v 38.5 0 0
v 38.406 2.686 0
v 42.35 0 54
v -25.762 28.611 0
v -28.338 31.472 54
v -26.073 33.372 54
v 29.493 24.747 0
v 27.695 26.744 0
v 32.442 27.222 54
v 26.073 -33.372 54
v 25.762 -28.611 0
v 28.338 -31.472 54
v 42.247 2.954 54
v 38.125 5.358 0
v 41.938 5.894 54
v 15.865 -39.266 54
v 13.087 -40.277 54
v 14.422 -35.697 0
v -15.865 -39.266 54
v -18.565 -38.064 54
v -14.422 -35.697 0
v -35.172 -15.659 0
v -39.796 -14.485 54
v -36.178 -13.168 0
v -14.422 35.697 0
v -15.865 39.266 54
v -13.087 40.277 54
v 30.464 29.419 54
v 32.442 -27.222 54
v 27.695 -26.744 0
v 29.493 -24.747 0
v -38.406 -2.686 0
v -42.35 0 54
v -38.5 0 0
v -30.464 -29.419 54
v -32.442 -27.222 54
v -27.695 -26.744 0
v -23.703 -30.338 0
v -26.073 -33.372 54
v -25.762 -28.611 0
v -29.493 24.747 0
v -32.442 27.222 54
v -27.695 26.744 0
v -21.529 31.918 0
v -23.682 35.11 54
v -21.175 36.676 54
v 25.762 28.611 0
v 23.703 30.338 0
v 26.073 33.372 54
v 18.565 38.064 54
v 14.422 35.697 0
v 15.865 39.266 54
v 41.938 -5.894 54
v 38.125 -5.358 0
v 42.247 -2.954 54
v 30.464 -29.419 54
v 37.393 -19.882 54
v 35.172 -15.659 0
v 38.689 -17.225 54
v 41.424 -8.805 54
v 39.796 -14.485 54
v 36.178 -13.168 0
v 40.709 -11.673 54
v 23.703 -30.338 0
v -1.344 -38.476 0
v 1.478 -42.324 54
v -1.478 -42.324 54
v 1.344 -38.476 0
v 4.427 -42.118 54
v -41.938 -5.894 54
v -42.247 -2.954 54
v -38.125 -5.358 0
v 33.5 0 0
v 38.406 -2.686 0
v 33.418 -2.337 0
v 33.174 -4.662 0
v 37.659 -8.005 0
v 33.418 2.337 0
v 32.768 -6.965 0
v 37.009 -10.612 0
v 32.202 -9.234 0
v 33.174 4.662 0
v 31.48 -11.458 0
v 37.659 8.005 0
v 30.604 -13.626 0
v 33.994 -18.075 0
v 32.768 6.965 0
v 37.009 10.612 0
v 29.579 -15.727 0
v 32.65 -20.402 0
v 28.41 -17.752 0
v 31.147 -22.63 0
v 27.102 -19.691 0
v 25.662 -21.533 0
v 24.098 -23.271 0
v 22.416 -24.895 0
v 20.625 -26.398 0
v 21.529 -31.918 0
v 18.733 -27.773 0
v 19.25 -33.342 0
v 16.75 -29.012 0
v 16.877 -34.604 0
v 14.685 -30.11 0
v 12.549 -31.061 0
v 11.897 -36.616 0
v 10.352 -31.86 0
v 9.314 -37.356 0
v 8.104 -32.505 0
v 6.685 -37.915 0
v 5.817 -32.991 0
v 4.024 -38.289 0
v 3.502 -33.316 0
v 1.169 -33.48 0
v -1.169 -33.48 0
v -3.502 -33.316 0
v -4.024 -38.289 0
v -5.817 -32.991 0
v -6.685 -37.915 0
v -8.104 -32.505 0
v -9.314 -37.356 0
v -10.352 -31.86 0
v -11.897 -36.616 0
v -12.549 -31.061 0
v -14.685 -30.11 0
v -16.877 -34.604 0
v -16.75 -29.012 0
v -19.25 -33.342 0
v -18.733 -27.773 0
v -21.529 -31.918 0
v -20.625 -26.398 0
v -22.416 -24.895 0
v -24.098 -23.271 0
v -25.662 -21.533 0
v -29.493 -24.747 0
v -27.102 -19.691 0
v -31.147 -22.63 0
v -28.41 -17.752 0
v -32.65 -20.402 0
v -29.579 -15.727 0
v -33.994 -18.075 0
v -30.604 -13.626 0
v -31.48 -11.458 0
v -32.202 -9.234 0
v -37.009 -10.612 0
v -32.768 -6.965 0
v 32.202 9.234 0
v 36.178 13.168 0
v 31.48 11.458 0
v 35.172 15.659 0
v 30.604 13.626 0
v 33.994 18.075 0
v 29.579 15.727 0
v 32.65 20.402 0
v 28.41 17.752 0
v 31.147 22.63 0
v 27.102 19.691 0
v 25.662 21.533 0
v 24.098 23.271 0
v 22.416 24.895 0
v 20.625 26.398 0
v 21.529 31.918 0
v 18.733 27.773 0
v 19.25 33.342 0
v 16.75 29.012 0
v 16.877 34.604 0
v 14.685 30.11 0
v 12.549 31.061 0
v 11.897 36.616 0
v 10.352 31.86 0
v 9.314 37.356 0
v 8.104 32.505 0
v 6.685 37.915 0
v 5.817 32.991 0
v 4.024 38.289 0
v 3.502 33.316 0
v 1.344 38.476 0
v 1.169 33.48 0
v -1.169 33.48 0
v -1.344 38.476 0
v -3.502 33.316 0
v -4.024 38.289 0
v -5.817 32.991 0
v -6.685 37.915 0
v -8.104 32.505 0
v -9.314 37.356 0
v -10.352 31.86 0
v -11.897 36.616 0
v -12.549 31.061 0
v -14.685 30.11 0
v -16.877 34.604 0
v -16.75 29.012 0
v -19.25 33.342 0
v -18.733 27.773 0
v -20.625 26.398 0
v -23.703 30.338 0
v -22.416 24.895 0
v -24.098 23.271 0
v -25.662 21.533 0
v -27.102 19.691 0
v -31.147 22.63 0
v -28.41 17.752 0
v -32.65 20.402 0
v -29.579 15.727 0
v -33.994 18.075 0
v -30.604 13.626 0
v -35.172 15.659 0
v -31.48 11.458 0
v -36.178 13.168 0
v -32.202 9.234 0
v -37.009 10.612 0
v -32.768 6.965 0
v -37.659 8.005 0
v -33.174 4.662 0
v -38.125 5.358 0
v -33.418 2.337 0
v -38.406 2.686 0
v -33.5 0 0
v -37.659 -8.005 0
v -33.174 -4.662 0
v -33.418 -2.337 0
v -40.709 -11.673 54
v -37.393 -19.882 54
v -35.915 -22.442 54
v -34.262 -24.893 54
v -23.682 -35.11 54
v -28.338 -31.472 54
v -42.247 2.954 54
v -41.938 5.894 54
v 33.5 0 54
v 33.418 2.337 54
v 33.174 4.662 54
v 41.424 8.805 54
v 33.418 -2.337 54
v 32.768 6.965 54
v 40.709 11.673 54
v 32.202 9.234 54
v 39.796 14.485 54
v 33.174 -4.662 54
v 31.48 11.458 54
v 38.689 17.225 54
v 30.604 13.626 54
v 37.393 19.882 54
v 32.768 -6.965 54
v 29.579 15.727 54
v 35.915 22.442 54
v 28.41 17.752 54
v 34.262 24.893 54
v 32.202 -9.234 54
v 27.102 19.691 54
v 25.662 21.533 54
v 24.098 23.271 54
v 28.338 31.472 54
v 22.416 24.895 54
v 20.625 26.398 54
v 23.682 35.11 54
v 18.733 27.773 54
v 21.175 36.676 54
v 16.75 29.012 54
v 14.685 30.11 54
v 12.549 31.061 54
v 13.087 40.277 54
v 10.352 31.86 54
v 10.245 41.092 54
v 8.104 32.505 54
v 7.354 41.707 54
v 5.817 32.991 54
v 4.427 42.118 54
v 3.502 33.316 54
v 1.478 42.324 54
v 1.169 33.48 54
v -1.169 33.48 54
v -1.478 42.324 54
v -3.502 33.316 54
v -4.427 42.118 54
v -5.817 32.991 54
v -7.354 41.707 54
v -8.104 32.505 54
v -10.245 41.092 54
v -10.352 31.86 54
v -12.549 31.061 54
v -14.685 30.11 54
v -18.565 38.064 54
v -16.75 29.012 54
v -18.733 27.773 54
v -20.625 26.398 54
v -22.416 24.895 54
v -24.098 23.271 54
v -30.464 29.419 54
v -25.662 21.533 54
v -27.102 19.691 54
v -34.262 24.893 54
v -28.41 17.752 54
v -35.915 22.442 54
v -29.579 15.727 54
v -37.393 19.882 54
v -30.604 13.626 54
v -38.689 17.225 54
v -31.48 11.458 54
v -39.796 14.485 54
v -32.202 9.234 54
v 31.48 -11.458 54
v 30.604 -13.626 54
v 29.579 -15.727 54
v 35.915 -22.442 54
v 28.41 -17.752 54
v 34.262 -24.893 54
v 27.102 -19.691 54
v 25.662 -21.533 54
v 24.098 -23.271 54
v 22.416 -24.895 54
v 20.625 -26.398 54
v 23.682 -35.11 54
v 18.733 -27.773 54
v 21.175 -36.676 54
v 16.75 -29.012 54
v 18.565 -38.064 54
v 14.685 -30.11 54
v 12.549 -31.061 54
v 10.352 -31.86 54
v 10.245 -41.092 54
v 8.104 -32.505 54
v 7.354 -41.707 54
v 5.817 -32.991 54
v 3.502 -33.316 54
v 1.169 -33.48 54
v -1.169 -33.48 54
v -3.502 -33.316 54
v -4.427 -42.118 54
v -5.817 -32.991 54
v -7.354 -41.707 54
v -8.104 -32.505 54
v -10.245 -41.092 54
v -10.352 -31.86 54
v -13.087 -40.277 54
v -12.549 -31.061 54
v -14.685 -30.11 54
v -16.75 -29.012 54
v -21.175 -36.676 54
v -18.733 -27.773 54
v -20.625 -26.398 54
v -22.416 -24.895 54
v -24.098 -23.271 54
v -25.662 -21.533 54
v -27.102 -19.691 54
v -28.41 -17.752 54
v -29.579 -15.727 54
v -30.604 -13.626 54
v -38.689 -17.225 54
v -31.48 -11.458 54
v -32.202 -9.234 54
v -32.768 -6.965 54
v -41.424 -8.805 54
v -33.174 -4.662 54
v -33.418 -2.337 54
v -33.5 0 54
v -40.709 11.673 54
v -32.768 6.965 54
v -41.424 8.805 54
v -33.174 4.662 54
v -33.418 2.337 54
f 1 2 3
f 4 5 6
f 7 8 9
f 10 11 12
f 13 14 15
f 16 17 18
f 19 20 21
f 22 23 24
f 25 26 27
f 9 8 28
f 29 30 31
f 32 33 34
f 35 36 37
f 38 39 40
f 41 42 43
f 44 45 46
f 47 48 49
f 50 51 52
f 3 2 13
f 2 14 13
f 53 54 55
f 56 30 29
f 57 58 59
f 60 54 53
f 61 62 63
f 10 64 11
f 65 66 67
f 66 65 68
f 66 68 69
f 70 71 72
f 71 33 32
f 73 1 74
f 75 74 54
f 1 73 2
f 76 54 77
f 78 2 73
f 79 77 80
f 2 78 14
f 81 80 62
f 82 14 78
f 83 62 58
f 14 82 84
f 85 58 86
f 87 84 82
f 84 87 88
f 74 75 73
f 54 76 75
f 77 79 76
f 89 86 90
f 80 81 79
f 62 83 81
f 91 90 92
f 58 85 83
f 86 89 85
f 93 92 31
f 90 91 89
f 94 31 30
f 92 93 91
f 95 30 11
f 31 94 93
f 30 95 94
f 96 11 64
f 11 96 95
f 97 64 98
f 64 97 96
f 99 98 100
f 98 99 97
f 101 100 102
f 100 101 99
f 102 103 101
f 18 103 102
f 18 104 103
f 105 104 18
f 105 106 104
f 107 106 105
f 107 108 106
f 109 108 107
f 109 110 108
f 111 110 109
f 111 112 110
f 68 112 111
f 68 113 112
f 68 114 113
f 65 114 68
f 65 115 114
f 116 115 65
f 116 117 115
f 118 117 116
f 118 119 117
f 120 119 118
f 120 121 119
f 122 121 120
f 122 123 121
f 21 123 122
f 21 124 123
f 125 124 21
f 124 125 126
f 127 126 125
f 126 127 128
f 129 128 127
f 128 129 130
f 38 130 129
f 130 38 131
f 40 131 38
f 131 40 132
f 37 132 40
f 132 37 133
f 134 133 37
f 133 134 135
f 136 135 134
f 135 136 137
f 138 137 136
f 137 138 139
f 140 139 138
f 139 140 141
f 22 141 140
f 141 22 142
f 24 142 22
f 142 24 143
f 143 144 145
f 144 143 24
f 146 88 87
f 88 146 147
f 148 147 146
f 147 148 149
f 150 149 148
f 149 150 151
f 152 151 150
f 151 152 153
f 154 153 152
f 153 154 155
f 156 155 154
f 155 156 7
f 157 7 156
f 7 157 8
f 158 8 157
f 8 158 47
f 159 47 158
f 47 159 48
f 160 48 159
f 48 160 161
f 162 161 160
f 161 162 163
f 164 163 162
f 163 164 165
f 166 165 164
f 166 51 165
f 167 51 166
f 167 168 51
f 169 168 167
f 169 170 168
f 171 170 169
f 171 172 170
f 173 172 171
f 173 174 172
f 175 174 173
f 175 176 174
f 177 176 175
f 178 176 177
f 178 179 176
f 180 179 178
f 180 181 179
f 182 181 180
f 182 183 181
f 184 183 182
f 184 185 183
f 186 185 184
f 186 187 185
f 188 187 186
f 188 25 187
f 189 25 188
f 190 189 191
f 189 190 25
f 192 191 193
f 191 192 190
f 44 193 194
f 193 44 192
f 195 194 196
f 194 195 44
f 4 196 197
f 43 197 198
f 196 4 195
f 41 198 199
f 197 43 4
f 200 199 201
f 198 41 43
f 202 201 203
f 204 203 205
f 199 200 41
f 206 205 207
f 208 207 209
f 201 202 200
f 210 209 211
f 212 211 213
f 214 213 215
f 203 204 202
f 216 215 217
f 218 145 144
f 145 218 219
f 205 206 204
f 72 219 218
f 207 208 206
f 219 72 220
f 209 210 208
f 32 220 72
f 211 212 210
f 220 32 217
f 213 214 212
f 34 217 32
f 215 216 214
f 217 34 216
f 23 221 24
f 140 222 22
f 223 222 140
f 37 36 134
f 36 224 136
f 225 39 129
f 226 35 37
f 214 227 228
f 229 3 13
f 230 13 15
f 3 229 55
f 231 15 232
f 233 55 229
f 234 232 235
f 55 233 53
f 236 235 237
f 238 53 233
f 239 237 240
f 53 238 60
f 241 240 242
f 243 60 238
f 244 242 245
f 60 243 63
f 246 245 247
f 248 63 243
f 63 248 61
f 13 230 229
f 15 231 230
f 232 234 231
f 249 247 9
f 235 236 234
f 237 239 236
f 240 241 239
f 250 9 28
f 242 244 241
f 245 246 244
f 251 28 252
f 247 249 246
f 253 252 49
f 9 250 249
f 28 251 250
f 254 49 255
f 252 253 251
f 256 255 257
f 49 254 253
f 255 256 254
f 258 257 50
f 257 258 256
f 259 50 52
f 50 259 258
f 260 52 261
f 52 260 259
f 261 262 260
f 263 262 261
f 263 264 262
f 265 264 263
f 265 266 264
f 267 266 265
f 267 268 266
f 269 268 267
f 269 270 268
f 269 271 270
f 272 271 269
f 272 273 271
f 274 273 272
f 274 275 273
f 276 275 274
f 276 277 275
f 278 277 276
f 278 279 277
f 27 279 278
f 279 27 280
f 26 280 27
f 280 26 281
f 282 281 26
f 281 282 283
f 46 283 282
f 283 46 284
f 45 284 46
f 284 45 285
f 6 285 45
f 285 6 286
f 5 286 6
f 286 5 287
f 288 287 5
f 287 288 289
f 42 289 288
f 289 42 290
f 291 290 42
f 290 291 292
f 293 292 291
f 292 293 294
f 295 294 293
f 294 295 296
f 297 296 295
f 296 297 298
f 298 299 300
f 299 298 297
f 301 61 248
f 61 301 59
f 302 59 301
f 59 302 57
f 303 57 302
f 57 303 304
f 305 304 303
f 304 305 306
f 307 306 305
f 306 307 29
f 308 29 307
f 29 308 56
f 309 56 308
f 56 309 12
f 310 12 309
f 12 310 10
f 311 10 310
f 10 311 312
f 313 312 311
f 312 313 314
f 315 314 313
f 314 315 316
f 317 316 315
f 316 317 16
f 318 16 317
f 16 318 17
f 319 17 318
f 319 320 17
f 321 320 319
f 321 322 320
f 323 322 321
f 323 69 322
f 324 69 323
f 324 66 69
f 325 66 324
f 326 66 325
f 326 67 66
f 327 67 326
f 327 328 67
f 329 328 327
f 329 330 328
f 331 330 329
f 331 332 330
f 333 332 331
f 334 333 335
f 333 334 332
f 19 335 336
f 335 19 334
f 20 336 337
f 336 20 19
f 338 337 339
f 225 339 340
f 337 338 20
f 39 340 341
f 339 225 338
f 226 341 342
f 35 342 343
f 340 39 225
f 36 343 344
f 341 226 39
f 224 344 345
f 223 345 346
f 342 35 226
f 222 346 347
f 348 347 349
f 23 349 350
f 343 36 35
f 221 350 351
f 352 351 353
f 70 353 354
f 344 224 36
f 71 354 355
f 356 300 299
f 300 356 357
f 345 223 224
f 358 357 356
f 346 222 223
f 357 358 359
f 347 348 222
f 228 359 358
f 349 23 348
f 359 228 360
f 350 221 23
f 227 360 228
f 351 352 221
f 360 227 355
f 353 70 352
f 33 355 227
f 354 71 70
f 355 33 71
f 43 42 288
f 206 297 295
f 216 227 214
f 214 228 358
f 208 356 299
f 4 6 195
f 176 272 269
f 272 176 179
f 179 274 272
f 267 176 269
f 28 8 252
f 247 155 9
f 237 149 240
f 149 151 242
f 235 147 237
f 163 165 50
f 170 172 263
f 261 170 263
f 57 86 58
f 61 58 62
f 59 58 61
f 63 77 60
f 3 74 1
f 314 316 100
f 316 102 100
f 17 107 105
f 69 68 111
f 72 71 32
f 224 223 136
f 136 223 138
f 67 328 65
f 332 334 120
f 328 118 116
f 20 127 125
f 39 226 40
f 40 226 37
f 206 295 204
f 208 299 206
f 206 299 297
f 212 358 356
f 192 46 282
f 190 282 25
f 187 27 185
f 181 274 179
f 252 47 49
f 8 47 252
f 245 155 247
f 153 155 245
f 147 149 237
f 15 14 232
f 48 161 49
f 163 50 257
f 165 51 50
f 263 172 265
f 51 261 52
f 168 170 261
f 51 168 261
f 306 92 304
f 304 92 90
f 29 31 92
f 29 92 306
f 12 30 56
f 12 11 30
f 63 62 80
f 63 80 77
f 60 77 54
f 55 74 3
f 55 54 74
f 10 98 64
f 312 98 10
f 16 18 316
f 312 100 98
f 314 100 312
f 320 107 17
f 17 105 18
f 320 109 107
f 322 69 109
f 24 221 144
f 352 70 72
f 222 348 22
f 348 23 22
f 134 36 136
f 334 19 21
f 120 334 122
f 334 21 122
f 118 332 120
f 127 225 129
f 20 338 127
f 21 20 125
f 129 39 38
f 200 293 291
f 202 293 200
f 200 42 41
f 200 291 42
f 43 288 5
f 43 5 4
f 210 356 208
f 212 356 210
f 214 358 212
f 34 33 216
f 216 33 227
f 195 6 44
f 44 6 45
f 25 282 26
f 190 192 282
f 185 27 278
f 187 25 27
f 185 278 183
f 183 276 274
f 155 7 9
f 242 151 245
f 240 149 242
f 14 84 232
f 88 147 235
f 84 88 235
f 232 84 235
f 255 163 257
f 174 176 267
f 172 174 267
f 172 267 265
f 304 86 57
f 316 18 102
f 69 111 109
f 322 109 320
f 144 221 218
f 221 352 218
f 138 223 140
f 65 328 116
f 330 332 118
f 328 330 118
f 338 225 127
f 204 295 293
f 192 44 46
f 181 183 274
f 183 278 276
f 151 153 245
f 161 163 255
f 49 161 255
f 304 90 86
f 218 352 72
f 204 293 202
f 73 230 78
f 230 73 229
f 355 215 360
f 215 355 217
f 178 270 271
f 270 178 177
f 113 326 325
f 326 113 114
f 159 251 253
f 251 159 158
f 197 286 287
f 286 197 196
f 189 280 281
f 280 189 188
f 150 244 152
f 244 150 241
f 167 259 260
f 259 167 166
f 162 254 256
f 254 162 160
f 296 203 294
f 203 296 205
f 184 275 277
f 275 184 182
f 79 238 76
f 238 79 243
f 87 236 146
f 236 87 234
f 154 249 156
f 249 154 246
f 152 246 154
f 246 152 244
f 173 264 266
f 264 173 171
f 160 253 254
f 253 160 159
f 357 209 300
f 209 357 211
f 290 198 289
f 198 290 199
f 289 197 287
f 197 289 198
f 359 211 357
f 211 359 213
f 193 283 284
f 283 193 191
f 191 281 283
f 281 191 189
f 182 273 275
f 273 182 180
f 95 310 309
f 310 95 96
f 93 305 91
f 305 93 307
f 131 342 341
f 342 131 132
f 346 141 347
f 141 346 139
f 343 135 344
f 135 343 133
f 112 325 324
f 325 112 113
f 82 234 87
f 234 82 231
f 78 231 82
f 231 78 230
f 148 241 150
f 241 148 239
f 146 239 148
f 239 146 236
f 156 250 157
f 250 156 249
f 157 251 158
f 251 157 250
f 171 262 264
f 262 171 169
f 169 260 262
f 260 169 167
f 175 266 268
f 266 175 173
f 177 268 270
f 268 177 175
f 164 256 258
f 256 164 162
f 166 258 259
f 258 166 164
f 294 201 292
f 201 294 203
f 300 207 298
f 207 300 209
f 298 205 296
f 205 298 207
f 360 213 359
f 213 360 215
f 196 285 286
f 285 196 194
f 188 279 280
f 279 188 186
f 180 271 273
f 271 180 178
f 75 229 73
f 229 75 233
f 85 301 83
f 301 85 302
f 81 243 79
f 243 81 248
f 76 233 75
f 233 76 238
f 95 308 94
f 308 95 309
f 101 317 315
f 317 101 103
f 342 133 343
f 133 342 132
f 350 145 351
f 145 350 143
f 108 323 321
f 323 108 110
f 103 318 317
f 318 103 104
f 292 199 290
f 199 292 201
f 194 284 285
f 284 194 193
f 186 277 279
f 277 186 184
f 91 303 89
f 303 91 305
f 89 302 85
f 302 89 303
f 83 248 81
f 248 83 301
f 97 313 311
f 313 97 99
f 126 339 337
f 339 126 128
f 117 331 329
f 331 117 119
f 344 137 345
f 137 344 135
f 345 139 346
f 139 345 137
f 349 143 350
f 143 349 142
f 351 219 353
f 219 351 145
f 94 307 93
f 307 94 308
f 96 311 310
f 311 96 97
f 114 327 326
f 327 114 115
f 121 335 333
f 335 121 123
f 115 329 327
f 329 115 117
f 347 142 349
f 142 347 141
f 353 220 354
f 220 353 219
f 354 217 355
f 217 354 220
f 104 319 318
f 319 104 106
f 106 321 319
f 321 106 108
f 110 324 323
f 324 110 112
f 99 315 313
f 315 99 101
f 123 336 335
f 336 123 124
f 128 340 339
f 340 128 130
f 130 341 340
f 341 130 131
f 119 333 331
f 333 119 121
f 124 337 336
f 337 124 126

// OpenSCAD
difference () {
  cylinder (h=54, d1=77, d2=84.7, $fn=90);
  cylinder (h=55, d=67, $fn=90);
};
